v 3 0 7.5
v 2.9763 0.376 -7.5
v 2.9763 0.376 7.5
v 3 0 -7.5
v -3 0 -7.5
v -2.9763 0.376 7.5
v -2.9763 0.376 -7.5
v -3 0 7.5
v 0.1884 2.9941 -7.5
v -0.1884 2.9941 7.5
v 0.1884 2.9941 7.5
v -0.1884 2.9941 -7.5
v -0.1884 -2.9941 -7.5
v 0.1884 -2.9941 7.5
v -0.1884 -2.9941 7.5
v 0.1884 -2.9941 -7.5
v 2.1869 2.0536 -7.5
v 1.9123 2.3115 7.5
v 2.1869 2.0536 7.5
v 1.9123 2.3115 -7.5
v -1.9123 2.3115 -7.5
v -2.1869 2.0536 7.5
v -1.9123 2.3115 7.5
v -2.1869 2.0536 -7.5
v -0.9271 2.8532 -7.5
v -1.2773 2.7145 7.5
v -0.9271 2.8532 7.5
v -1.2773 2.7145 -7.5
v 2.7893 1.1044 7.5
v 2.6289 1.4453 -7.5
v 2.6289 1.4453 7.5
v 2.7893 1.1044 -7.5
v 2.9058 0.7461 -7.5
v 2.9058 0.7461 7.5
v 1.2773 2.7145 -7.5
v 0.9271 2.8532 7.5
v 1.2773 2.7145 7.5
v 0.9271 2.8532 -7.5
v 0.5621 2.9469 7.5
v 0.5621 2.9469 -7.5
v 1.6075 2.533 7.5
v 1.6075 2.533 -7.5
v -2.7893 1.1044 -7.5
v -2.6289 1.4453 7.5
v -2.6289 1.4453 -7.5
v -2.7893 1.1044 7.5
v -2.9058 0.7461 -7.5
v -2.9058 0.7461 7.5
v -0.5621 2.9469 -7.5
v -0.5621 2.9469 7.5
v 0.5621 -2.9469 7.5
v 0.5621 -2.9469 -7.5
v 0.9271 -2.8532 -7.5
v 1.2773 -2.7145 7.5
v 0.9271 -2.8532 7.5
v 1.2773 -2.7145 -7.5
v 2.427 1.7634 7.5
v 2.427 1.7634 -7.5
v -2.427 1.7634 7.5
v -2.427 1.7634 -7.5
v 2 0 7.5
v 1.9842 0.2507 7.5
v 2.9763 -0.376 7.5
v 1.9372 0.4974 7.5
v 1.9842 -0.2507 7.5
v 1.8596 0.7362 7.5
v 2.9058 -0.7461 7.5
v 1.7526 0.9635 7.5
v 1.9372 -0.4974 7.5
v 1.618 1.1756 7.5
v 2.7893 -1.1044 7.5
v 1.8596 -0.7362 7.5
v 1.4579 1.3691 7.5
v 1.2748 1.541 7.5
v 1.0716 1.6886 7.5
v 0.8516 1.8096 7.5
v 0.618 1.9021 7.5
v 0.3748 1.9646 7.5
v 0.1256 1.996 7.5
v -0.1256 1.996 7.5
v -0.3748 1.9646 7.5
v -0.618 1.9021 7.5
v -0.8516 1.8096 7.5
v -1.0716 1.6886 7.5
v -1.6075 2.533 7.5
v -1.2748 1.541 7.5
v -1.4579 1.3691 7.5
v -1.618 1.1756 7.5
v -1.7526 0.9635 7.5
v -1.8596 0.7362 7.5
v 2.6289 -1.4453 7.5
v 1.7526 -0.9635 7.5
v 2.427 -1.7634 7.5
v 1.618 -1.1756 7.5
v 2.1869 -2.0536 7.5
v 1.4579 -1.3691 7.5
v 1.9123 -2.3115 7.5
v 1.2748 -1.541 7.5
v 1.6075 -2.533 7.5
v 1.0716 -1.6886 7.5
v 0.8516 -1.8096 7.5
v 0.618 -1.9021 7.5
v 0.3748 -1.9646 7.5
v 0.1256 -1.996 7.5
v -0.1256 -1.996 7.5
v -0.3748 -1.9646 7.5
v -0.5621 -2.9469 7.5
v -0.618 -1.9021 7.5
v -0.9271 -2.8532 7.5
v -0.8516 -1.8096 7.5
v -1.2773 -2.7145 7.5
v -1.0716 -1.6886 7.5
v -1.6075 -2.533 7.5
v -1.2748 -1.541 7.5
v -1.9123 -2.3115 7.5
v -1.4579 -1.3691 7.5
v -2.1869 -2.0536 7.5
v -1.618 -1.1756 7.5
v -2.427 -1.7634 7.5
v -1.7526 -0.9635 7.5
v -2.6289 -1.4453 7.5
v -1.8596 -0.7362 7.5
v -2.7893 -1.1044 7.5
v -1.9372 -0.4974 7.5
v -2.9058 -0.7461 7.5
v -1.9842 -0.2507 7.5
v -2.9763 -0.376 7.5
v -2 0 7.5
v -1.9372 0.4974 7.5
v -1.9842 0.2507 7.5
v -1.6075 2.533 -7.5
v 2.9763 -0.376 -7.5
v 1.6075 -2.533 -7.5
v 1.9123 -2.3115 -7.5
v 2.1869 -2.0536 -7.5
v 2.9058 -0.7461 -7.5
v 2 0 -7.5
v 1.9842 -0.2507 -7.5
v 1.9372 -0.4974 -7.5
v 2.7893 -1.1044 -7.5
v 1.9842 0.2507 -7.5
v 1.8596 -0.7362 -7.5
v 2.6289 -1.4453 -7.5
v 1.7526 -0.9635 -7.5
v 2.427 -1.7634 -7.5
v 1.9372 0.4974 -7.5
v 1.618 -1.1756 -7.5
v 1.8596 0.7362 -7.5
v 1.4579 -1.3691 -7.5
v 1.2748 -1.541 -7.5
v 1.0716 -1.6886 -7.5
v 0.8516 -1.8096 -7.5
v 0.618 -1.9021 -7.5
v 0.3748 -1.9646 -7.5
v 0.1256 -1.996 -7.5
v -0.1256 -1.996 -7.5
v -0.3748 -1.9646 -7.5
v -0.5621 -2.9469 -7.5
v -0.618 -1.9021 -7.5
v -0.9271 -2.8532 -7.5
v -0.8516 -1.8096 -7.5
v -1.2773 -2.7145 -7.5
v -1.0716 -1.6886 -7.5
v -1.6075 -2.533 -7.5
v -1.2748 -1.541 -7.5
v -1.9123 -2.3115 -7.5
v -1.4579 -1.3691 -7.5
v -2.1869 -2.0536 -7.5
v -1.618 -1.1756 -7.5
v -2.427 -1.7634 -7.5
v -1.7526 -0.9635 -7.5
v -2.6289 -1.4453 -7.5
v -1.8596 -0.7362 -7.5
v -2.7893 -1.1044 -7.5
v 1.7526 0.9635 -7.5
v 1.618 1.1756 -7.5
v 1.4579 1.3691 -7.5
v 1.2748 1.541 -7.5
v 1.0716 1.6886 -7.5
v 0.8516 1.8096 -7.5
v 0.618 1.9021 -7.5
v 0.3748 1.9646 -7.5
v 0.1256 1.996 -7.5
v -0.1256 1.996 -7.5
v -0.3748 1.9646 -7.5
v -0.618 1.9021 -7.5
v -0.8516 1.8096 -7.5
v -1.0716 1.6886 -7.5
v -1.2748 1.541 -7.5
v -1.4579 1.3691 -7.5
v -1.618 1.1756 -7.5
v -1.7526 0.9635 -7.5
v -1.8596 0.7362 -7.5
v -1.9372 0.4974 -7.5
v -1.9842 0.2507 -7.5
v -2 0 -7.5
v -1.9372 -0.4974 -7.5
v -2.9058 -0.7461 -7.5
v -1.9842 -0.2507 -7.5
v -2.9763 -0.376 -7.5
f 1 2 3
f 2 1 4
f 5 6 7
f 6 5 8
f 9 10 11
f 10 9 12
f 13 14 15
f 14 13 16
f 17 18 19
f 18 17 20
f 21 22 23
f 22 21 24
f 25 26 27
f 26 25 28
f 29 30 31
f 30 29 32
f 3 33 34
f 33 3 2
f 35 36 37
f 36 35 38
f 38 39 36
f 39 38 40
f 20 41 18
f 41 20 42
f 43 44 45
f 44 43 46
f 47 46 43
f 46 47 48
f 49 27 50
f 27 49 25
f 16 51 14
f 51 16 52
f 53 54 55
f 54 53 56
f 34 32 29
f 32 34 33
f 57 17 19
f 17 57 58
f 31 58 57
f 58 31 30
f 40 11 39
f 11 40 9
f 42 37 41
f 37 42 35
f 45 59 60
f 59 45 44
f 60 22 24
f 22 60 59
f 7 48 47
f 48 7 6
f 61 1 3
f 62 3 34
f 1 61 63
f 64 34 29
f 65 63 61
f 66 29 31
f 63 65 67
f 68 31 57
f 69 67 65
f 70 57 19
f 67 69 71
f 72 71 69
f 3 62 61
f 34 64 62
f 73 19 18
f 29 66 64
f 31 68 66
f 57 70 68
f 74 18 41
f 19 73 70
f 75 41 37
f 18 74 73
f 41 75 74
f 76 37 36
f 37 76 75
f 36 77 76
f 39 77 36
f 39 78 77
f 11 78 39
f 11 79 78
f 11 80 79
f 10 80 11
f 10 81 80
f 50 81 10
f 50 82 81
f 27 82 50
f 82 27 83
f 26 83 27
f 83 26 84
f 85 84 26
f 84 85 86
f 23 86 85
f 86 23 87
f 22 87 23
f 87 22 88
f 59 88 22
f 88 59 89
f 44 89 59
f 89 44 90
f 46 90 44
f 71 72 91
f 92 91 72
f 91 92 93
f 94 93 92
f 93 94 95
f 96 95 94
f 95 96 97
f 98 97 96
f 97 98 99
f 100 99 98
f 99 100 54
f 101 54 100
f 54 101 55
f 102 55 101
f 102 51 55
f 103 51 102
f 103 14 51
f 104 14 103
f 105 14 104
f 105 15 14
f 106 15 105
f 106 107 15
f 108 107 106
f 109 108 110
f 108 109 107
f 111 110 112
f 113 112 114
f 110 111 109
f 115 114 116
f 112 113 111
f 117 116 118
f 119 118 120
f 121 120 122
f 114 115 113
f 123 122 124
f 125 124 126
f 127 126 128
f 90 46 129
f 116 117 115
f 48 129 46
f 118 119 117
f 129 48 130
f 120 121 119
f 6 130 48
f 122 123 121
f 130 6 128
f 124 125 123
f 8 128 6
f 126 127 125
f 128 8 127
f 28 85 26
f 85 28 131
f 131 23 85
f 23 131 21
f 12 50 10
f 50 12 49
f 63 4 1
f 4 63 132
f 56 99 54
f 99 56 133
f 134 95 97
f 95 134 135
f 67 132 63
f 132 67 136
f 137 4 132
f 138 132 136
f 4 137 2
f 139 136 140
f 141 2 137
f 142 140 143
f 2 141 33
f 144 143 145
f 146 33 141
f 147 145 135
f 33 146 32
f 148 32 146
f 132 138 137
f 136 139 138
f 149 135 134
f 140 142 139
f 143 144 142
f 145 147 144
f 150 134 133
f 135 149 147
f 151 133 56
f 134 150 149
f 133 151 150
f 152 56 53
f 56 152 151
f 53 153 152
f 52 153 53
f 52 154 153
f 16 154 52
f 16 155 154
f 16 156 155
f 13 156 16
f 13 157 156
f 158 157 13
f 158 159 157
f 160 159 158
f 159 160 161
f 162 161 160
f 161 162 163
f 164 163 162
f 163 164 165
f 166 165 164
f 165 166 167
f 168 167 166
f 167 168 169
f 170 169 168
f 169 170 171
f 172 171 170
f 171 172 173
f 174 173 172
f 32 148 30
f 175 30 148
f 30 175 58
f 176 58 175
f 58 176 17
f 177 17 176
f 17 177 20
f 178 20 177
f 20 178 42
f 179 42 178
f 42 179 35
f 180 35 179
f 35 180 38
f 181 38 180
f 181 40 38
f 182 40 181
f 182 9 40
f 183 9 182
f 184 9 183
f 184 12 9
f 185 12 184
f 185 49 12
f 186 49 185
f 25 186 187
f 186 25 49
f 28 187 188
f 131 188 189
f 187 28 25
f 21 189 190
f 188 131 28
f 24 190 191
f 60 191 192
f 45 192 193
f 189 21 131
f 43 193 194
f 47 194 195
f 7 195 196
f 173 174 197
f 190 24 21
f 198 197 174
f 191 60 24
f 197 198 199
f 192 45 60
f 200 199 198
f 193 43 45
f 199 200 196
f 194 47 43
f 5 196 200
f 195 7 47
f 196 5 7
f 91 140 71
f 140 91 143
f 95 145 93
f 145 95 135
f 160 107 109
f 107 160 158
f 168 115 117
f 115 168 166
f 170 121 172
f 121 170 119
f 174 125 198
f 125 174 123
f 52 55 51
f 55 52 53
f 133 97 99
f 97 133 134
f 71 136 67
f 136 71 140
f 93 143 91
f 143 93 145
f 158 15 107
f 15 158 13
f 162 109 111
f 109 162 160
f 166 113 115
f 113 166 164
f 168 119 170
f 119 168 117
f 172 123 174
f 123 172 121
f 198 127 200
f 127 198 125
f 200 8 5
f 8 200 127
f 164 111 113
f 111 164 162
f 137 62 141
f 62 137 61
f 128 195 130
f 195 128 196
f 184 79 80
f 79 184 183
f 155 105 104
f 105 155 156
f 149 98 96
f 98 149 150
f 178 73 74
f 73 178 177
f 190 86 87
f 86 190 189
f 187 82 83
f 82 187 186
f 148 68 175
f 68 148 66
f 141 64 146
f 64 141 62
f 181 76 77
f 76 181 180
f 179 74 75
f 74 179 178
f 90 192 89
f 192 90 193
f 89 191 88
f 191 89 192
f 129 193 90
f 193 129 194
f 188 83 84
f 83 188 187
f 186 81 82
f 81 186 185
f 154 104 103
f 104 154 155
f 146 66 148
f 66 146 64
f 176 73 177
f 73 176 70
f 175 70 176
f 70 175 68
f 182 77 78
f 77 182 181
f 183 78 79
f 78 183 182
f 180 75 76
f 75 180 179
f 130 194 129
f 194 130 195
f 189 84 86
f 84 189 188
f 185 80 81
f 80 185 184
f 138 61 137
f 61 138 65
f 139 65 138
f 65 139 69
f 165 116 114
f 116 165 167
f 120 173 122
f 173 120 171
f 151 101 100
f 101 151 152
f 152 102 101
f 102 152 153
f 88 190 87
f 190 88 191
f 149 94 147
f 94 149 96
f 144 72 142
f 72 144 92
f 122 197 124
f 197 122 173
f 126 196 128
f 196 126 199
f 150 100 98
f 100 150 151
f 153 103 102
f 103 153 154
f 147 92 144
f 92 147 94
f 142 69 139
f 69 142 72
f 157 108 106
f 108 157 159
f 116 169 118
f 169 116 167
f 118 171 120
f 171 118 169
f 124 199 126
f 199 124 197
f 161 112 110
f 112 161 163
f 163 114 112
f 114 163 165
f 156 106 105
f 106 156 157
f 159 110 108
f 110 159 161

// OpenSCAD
$fn = 50;


difference() {
	union() {
		translate(v = [0, 0, -7.5000000000]) {
			cylinder(h = 15, r = 3.0000000000);
		}
	}
	union() {
		translate(v = [0, 0, -100.0000000000]) {
			cylinder(h = 200, r = 2);
		}
	}
}
